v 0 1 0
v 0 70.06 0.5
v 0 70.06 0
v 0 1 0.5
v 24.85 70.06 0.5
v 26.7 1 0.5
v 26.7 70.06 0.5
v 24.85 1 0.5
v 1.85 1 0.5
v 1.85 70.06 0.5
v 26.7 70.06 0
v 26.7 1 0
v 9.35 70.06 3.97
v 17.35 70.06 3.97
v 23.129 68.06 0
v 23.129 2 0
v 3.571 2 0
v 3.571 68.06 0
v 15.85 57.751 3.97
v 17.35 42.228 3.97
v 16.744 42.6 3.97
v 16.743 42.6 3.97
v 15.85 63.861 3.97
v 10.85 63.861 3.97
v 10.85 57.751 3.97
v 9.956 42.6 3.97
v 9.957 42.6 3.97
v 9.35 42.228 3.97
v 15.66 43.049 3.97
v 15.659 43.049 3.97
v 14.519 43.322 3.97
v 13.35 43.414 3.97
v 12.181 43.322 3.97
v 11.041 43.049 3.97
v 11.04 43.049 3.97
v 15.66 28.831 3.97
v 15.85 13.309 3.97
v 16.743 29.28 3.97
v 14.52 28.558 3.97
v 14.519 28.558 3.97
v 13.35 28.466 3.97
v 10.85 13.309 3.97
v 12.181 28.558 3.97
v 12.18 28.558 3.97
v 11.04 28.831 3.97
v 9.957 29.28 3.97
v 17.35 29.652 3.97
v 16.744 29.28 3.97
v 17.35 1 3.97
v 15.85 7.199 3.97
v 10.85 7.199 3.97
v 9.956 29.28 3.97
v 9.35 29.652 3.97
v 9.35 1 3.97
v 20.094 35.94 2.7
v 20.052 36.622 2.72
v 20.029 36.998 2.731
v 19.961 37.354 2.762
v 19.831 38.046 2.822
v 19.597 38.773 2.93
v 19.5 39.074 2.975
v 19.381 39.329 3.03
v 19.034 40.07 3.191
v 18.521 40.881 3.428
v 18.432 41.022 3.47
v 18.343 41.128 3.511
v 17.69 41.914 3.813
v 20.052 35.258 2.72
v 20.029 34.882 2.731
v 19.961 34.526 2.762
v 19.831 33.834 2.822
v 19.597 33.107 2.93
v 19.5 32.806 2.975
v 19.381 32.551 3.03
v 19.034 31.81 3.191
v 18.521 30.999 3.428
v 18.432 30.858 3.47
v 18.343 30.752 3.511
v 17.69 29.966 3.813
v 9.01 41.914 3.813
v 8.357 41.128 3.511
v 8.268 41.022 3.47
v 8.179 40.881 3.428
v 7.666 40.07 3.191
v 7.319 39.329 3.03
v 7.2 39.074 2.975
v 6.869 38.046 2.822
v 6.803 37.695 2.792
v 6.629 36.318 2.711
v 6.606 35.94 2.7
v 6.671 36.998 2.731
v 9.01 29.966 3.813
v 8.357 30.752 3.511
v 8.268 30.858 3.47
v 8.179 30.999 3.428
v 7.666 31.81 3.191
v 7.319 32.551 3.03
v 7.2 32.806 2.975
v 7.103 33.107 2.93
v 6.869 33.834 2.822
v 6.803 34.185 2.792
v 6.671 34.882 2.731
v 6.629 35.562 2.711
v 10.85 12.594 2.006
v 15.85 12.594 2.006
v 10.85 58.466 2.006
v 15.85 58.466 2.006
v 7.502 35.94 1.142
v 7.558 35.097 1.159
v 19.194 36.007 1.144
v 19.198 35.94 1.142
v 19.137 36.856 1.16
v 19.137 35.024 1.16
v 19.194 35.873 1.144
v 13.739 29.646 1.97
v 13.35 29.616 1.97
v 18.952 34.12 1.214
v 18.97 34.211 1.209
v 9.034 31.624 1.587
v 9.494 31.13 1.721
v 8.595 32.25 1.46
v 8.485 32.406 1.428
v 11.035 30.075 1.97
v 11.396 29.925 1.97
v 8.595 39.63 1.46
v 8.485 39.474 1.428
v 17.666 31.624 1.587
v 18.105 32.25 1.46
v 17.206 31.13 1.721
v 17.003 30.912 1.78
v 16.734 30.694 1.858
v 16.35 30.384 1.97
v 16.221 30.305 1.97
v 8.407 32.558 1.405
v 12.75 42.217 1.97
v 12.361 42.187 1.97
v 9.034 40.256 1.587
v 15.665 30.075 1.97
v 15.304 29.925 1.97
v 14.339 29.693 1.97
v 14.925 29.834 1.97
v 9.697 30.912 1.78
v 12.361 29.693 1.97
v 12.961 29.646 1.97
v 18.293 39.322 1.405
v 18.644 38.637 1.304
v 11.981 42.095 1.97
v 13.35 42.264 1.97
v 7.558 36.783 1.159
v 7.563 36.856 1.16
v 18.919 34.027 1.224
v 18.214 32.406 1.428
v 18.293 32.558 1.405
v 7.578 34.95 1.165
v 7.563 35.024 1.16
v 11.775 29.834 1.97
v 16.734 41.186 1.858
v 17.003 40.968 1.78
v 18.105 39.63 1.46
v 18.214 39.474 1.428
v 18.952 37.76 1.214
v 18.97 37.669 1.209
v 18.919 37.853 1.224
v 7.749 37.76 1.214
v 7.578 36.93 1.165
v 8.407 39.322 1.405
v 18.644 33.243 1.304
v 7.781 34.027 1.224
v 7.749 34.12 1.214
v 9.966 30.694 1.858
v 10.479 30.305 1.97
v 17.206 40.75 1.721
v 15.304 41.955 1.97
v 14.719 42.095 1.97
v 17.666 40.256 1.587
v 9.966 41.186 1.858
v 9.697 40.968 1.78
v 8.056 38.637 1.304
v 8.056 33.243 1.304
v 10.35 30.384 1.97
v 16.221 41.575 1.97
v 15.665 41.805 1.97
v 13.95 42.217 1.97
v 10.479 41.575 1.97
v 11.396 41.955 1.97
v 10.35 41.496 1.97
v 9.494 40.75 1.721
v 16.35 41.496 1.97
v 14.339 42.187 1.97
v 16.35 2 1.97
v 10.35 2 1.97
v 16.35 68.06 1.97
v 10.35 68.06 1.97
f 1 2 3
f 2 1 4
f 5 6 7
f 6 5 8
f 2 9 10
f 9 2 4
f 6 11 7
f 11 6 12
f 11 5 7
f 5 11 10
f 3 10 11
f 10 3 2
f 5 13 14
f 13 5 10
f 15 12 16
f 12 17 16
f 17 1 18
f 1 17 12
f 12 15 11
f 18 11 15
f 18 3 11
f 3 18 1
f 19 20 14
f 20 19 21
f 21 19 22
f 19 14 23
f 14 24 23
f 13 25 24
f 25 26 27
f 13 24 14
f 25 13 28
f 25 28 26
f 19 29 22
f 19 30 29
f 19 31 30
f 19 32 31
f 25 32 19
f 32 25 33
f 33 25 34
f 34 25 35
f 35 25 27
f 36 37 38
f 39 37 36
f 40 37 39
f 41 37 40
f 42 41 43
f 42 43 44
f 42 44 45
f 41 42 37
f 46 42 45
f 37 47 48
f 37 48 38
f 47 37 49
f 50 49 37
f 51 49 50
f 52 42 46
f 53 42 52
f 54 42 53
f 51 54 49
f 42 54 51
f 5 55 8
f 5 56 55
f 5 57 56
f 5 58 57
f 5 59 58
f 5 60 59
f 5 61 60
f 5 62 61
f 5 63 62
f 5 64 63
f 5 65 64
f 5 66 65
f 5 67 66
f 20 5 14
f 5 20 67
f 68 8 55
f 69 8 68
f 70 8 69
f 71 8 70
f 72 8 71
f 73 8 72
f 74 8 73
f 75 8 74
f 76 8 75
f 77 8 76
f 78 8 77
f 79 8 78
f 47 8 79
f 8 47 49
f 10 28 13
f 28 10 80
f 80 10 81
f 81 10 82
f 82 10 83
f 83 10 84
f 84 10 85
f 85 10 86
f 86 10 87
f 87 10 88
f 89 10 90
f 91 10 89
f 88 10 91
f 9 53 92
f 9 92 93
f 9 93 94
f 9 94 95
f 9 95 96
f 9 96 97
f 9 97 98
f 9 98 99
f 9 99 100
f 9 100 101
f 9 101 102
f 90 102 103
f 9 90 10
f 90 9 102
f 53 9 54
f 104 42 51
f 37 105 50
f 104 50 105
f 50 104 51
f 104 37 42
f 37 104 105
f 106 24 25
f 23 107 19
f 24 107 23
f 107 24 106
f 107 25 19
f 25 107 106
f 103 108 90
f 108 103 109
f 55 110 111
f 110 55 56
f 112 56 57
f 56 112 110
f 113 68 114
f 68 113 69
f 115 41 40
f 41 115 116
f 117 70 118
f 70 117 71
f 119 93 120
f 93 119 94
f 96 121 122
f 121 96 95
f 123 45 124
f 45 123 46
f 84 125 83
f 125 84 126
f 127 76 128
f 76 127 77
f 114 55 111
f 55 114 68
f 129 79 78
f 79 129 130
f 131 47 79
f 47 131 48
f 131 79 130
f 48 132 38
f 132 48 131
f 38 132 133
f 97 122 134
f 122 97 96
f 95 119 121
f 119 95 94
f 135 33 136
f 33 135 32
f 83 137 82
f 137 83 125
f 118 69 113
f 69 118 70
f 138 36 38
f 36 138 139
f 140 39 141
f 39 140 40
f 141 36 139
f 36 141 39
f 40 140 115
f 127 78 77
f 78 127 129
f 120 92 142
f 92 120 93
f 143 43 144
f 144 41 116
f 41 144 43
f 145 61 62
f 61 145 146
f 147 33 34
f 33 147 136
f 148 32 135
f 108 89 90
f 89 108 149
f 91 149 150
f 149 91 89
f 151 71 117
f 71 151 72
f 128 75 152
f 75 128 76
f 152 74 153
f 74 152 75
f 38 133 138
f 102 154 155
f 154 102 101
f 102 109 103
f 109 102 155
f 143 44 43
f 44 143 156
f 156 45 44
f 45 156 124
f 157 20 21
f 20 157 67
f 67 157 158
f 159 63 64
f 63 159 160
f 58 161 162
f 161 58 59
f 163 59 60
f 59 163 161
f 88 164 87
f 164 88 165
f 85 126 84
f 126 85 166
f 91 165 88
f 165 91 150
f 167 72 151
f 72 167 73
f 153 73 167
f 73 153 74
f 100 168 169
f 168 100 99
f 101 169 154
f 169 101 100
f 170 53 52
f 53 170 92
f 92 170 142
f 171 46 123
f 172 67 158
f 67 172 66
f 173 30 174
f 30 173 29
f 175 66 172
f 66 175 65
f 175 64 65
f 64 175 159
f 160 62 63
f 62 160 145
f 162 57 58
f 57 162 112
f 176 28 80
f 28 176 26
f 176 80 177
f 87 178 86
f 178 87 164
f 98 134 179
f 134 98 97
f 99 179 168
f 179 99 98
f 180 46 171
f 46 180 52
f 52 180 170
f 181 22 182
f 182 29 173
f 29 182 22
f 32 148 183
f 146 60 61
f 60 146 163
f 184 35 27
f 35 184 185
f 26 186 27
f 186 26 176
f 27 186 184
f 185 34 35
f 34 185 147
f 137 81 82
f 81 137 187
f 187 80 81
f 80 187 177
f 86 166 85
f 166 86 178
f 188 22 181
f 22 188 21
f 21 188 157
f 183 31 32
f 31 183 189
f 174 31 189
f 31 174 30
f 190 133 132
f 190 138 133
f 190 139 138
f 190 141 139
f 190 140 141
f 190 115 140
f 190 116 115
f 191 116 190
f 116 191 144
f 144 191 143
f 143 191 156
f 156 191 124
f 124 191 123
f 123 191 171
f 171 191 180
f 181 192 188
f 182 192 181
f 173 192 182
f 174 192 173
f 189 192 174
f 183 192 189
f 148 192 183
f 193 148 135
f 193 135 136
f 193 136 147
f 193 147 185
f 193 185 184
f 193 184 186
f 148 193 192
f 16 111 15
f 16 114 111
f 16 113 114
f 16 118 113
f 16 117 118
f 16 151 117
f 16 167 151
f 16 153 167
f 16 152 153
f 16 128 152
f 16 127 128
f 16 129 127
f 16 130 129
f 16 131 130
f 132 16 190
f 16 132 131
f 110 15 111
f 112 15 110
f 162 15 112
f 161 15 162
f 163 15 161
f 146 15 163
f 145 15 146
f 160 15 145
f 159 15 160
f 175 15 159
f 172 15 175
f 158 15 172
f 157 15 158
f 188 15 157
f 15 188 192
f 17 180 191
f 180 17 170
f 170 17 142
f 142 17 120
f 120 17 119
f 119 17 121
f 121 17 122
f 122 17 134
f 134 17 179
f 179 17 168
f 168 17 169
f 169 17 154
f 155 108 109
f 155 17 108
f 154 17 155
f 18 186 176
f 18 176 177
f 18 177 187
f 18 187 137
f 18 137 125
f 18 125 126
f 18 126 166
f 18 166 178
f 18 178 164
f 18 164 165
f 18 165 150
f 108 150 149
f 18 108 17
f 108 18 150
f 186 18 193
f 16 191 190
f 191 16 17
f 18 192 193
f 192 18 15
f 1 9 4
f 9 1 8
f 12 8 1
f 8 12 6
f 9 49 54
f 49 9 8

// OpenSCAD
$fn=40;

/* Diffuser Lense For A Particular Project (OpenSCAD) */

/* Camera */
cam_dia = 10.5;

/* LED PCB */
ledpcbw = 26.7;
ledpcbh = 71.88;
ledpcb_thickness = 3.47;
ledpcb_header_pos = 25;
ledpcb_header_w = 9;
holedia = cam_dia + 1;

/* Diffuser */
diffuserw=ledpcbw;
diffuserh=ledpcbh-1.82;
thickness=ledpcb_thickness-1.59;

/* Top Diffuser */
diffuser_top_h=0.5;

/* Bottom Diffuser */
diffuser_bottom_h=ledpcb_thickness;

/* Enclosure hole */
enclosurew = ledpcb_header_pos-2;

/* SMD LED */
ledh = 2.76-1.59;
ledw = 4;
ledd= 1.6;

/* INSET */
led_mount_inset = 10;
led_mount_angle = 70;

module led_mount(rotation, w, d, h)
{
  rotate([rotation,0,0])
    union()
    {
      translate([ledpcbw/2 - w/2, -d/2, -h])
        cube([w,d,h+5]);
    }
}

difference()
{
  union()
  { 
    // Main object
    difference()
    {
      union()
      { // Main Body
        
        // Top Diffuser
        cube([diffuserw,diffuserh,diffuser_top_h]);
        
        // Bottom Diffuser
        bottom_flat_width = ledw;
        hull()
        {
          translate([(diffuserw - enclosurew)/2,0,0])
            cube([enclosurew,diffuserh,diffuser_top_h]);
          translate([ledpcbw/2 - bottom_flat_width,0,diffuser_top_h])
            cube([bottom_flat_width*2, diffuserh, diffuser_bottom_h]);
        }
      }

      // LED Holes
      translate([0,1+led_mount_inset,diffuser_top_h+diffuser_bottom_h])
        led_mount(led_mount_angle,ledw+1,ledd+1,ledh+1);
      translate([0,diffuserh-led_mount_inset,diffuser_top_h+diffuser_bottom_h])
        led_mount(-led_mount_angle,ledw+1,ledd+1,ledh+1);

      // Camera Hole
      translate([ledpcbw/2,ledpcbh/2,-thickness/2])
        cylinder(thickness*3,d=holedia);

      // Camera Hole Bottom Lip
      translate([ledpcbw/2,ledpcbh/2, diffuser_top_h+diffuser_bottom_h-3+0.001])
        cylinder(3, d1=holedia, d2=holedia*1.3);
      
      // Bottom Diffuser
      bottom_flat_width = ledw-1;
      hull()
      {
        translate([(diffuserw - enclosurew)/2,2,-1])
          cube([enclosurew,diffuserh-4,diffuser_top_h]);
        translate([ledpcbw/2 - bottom_flat_width,2,diffuser_top_h-2])
          cube([bottom_flat_width*2, diffuserh-4, diffuser_bottom_h]);
      }
    }
  }
  
  /* Trimming */
  translate([0,0,-thickness])
    cube([diffuserw,1,thickness*4]);
}
